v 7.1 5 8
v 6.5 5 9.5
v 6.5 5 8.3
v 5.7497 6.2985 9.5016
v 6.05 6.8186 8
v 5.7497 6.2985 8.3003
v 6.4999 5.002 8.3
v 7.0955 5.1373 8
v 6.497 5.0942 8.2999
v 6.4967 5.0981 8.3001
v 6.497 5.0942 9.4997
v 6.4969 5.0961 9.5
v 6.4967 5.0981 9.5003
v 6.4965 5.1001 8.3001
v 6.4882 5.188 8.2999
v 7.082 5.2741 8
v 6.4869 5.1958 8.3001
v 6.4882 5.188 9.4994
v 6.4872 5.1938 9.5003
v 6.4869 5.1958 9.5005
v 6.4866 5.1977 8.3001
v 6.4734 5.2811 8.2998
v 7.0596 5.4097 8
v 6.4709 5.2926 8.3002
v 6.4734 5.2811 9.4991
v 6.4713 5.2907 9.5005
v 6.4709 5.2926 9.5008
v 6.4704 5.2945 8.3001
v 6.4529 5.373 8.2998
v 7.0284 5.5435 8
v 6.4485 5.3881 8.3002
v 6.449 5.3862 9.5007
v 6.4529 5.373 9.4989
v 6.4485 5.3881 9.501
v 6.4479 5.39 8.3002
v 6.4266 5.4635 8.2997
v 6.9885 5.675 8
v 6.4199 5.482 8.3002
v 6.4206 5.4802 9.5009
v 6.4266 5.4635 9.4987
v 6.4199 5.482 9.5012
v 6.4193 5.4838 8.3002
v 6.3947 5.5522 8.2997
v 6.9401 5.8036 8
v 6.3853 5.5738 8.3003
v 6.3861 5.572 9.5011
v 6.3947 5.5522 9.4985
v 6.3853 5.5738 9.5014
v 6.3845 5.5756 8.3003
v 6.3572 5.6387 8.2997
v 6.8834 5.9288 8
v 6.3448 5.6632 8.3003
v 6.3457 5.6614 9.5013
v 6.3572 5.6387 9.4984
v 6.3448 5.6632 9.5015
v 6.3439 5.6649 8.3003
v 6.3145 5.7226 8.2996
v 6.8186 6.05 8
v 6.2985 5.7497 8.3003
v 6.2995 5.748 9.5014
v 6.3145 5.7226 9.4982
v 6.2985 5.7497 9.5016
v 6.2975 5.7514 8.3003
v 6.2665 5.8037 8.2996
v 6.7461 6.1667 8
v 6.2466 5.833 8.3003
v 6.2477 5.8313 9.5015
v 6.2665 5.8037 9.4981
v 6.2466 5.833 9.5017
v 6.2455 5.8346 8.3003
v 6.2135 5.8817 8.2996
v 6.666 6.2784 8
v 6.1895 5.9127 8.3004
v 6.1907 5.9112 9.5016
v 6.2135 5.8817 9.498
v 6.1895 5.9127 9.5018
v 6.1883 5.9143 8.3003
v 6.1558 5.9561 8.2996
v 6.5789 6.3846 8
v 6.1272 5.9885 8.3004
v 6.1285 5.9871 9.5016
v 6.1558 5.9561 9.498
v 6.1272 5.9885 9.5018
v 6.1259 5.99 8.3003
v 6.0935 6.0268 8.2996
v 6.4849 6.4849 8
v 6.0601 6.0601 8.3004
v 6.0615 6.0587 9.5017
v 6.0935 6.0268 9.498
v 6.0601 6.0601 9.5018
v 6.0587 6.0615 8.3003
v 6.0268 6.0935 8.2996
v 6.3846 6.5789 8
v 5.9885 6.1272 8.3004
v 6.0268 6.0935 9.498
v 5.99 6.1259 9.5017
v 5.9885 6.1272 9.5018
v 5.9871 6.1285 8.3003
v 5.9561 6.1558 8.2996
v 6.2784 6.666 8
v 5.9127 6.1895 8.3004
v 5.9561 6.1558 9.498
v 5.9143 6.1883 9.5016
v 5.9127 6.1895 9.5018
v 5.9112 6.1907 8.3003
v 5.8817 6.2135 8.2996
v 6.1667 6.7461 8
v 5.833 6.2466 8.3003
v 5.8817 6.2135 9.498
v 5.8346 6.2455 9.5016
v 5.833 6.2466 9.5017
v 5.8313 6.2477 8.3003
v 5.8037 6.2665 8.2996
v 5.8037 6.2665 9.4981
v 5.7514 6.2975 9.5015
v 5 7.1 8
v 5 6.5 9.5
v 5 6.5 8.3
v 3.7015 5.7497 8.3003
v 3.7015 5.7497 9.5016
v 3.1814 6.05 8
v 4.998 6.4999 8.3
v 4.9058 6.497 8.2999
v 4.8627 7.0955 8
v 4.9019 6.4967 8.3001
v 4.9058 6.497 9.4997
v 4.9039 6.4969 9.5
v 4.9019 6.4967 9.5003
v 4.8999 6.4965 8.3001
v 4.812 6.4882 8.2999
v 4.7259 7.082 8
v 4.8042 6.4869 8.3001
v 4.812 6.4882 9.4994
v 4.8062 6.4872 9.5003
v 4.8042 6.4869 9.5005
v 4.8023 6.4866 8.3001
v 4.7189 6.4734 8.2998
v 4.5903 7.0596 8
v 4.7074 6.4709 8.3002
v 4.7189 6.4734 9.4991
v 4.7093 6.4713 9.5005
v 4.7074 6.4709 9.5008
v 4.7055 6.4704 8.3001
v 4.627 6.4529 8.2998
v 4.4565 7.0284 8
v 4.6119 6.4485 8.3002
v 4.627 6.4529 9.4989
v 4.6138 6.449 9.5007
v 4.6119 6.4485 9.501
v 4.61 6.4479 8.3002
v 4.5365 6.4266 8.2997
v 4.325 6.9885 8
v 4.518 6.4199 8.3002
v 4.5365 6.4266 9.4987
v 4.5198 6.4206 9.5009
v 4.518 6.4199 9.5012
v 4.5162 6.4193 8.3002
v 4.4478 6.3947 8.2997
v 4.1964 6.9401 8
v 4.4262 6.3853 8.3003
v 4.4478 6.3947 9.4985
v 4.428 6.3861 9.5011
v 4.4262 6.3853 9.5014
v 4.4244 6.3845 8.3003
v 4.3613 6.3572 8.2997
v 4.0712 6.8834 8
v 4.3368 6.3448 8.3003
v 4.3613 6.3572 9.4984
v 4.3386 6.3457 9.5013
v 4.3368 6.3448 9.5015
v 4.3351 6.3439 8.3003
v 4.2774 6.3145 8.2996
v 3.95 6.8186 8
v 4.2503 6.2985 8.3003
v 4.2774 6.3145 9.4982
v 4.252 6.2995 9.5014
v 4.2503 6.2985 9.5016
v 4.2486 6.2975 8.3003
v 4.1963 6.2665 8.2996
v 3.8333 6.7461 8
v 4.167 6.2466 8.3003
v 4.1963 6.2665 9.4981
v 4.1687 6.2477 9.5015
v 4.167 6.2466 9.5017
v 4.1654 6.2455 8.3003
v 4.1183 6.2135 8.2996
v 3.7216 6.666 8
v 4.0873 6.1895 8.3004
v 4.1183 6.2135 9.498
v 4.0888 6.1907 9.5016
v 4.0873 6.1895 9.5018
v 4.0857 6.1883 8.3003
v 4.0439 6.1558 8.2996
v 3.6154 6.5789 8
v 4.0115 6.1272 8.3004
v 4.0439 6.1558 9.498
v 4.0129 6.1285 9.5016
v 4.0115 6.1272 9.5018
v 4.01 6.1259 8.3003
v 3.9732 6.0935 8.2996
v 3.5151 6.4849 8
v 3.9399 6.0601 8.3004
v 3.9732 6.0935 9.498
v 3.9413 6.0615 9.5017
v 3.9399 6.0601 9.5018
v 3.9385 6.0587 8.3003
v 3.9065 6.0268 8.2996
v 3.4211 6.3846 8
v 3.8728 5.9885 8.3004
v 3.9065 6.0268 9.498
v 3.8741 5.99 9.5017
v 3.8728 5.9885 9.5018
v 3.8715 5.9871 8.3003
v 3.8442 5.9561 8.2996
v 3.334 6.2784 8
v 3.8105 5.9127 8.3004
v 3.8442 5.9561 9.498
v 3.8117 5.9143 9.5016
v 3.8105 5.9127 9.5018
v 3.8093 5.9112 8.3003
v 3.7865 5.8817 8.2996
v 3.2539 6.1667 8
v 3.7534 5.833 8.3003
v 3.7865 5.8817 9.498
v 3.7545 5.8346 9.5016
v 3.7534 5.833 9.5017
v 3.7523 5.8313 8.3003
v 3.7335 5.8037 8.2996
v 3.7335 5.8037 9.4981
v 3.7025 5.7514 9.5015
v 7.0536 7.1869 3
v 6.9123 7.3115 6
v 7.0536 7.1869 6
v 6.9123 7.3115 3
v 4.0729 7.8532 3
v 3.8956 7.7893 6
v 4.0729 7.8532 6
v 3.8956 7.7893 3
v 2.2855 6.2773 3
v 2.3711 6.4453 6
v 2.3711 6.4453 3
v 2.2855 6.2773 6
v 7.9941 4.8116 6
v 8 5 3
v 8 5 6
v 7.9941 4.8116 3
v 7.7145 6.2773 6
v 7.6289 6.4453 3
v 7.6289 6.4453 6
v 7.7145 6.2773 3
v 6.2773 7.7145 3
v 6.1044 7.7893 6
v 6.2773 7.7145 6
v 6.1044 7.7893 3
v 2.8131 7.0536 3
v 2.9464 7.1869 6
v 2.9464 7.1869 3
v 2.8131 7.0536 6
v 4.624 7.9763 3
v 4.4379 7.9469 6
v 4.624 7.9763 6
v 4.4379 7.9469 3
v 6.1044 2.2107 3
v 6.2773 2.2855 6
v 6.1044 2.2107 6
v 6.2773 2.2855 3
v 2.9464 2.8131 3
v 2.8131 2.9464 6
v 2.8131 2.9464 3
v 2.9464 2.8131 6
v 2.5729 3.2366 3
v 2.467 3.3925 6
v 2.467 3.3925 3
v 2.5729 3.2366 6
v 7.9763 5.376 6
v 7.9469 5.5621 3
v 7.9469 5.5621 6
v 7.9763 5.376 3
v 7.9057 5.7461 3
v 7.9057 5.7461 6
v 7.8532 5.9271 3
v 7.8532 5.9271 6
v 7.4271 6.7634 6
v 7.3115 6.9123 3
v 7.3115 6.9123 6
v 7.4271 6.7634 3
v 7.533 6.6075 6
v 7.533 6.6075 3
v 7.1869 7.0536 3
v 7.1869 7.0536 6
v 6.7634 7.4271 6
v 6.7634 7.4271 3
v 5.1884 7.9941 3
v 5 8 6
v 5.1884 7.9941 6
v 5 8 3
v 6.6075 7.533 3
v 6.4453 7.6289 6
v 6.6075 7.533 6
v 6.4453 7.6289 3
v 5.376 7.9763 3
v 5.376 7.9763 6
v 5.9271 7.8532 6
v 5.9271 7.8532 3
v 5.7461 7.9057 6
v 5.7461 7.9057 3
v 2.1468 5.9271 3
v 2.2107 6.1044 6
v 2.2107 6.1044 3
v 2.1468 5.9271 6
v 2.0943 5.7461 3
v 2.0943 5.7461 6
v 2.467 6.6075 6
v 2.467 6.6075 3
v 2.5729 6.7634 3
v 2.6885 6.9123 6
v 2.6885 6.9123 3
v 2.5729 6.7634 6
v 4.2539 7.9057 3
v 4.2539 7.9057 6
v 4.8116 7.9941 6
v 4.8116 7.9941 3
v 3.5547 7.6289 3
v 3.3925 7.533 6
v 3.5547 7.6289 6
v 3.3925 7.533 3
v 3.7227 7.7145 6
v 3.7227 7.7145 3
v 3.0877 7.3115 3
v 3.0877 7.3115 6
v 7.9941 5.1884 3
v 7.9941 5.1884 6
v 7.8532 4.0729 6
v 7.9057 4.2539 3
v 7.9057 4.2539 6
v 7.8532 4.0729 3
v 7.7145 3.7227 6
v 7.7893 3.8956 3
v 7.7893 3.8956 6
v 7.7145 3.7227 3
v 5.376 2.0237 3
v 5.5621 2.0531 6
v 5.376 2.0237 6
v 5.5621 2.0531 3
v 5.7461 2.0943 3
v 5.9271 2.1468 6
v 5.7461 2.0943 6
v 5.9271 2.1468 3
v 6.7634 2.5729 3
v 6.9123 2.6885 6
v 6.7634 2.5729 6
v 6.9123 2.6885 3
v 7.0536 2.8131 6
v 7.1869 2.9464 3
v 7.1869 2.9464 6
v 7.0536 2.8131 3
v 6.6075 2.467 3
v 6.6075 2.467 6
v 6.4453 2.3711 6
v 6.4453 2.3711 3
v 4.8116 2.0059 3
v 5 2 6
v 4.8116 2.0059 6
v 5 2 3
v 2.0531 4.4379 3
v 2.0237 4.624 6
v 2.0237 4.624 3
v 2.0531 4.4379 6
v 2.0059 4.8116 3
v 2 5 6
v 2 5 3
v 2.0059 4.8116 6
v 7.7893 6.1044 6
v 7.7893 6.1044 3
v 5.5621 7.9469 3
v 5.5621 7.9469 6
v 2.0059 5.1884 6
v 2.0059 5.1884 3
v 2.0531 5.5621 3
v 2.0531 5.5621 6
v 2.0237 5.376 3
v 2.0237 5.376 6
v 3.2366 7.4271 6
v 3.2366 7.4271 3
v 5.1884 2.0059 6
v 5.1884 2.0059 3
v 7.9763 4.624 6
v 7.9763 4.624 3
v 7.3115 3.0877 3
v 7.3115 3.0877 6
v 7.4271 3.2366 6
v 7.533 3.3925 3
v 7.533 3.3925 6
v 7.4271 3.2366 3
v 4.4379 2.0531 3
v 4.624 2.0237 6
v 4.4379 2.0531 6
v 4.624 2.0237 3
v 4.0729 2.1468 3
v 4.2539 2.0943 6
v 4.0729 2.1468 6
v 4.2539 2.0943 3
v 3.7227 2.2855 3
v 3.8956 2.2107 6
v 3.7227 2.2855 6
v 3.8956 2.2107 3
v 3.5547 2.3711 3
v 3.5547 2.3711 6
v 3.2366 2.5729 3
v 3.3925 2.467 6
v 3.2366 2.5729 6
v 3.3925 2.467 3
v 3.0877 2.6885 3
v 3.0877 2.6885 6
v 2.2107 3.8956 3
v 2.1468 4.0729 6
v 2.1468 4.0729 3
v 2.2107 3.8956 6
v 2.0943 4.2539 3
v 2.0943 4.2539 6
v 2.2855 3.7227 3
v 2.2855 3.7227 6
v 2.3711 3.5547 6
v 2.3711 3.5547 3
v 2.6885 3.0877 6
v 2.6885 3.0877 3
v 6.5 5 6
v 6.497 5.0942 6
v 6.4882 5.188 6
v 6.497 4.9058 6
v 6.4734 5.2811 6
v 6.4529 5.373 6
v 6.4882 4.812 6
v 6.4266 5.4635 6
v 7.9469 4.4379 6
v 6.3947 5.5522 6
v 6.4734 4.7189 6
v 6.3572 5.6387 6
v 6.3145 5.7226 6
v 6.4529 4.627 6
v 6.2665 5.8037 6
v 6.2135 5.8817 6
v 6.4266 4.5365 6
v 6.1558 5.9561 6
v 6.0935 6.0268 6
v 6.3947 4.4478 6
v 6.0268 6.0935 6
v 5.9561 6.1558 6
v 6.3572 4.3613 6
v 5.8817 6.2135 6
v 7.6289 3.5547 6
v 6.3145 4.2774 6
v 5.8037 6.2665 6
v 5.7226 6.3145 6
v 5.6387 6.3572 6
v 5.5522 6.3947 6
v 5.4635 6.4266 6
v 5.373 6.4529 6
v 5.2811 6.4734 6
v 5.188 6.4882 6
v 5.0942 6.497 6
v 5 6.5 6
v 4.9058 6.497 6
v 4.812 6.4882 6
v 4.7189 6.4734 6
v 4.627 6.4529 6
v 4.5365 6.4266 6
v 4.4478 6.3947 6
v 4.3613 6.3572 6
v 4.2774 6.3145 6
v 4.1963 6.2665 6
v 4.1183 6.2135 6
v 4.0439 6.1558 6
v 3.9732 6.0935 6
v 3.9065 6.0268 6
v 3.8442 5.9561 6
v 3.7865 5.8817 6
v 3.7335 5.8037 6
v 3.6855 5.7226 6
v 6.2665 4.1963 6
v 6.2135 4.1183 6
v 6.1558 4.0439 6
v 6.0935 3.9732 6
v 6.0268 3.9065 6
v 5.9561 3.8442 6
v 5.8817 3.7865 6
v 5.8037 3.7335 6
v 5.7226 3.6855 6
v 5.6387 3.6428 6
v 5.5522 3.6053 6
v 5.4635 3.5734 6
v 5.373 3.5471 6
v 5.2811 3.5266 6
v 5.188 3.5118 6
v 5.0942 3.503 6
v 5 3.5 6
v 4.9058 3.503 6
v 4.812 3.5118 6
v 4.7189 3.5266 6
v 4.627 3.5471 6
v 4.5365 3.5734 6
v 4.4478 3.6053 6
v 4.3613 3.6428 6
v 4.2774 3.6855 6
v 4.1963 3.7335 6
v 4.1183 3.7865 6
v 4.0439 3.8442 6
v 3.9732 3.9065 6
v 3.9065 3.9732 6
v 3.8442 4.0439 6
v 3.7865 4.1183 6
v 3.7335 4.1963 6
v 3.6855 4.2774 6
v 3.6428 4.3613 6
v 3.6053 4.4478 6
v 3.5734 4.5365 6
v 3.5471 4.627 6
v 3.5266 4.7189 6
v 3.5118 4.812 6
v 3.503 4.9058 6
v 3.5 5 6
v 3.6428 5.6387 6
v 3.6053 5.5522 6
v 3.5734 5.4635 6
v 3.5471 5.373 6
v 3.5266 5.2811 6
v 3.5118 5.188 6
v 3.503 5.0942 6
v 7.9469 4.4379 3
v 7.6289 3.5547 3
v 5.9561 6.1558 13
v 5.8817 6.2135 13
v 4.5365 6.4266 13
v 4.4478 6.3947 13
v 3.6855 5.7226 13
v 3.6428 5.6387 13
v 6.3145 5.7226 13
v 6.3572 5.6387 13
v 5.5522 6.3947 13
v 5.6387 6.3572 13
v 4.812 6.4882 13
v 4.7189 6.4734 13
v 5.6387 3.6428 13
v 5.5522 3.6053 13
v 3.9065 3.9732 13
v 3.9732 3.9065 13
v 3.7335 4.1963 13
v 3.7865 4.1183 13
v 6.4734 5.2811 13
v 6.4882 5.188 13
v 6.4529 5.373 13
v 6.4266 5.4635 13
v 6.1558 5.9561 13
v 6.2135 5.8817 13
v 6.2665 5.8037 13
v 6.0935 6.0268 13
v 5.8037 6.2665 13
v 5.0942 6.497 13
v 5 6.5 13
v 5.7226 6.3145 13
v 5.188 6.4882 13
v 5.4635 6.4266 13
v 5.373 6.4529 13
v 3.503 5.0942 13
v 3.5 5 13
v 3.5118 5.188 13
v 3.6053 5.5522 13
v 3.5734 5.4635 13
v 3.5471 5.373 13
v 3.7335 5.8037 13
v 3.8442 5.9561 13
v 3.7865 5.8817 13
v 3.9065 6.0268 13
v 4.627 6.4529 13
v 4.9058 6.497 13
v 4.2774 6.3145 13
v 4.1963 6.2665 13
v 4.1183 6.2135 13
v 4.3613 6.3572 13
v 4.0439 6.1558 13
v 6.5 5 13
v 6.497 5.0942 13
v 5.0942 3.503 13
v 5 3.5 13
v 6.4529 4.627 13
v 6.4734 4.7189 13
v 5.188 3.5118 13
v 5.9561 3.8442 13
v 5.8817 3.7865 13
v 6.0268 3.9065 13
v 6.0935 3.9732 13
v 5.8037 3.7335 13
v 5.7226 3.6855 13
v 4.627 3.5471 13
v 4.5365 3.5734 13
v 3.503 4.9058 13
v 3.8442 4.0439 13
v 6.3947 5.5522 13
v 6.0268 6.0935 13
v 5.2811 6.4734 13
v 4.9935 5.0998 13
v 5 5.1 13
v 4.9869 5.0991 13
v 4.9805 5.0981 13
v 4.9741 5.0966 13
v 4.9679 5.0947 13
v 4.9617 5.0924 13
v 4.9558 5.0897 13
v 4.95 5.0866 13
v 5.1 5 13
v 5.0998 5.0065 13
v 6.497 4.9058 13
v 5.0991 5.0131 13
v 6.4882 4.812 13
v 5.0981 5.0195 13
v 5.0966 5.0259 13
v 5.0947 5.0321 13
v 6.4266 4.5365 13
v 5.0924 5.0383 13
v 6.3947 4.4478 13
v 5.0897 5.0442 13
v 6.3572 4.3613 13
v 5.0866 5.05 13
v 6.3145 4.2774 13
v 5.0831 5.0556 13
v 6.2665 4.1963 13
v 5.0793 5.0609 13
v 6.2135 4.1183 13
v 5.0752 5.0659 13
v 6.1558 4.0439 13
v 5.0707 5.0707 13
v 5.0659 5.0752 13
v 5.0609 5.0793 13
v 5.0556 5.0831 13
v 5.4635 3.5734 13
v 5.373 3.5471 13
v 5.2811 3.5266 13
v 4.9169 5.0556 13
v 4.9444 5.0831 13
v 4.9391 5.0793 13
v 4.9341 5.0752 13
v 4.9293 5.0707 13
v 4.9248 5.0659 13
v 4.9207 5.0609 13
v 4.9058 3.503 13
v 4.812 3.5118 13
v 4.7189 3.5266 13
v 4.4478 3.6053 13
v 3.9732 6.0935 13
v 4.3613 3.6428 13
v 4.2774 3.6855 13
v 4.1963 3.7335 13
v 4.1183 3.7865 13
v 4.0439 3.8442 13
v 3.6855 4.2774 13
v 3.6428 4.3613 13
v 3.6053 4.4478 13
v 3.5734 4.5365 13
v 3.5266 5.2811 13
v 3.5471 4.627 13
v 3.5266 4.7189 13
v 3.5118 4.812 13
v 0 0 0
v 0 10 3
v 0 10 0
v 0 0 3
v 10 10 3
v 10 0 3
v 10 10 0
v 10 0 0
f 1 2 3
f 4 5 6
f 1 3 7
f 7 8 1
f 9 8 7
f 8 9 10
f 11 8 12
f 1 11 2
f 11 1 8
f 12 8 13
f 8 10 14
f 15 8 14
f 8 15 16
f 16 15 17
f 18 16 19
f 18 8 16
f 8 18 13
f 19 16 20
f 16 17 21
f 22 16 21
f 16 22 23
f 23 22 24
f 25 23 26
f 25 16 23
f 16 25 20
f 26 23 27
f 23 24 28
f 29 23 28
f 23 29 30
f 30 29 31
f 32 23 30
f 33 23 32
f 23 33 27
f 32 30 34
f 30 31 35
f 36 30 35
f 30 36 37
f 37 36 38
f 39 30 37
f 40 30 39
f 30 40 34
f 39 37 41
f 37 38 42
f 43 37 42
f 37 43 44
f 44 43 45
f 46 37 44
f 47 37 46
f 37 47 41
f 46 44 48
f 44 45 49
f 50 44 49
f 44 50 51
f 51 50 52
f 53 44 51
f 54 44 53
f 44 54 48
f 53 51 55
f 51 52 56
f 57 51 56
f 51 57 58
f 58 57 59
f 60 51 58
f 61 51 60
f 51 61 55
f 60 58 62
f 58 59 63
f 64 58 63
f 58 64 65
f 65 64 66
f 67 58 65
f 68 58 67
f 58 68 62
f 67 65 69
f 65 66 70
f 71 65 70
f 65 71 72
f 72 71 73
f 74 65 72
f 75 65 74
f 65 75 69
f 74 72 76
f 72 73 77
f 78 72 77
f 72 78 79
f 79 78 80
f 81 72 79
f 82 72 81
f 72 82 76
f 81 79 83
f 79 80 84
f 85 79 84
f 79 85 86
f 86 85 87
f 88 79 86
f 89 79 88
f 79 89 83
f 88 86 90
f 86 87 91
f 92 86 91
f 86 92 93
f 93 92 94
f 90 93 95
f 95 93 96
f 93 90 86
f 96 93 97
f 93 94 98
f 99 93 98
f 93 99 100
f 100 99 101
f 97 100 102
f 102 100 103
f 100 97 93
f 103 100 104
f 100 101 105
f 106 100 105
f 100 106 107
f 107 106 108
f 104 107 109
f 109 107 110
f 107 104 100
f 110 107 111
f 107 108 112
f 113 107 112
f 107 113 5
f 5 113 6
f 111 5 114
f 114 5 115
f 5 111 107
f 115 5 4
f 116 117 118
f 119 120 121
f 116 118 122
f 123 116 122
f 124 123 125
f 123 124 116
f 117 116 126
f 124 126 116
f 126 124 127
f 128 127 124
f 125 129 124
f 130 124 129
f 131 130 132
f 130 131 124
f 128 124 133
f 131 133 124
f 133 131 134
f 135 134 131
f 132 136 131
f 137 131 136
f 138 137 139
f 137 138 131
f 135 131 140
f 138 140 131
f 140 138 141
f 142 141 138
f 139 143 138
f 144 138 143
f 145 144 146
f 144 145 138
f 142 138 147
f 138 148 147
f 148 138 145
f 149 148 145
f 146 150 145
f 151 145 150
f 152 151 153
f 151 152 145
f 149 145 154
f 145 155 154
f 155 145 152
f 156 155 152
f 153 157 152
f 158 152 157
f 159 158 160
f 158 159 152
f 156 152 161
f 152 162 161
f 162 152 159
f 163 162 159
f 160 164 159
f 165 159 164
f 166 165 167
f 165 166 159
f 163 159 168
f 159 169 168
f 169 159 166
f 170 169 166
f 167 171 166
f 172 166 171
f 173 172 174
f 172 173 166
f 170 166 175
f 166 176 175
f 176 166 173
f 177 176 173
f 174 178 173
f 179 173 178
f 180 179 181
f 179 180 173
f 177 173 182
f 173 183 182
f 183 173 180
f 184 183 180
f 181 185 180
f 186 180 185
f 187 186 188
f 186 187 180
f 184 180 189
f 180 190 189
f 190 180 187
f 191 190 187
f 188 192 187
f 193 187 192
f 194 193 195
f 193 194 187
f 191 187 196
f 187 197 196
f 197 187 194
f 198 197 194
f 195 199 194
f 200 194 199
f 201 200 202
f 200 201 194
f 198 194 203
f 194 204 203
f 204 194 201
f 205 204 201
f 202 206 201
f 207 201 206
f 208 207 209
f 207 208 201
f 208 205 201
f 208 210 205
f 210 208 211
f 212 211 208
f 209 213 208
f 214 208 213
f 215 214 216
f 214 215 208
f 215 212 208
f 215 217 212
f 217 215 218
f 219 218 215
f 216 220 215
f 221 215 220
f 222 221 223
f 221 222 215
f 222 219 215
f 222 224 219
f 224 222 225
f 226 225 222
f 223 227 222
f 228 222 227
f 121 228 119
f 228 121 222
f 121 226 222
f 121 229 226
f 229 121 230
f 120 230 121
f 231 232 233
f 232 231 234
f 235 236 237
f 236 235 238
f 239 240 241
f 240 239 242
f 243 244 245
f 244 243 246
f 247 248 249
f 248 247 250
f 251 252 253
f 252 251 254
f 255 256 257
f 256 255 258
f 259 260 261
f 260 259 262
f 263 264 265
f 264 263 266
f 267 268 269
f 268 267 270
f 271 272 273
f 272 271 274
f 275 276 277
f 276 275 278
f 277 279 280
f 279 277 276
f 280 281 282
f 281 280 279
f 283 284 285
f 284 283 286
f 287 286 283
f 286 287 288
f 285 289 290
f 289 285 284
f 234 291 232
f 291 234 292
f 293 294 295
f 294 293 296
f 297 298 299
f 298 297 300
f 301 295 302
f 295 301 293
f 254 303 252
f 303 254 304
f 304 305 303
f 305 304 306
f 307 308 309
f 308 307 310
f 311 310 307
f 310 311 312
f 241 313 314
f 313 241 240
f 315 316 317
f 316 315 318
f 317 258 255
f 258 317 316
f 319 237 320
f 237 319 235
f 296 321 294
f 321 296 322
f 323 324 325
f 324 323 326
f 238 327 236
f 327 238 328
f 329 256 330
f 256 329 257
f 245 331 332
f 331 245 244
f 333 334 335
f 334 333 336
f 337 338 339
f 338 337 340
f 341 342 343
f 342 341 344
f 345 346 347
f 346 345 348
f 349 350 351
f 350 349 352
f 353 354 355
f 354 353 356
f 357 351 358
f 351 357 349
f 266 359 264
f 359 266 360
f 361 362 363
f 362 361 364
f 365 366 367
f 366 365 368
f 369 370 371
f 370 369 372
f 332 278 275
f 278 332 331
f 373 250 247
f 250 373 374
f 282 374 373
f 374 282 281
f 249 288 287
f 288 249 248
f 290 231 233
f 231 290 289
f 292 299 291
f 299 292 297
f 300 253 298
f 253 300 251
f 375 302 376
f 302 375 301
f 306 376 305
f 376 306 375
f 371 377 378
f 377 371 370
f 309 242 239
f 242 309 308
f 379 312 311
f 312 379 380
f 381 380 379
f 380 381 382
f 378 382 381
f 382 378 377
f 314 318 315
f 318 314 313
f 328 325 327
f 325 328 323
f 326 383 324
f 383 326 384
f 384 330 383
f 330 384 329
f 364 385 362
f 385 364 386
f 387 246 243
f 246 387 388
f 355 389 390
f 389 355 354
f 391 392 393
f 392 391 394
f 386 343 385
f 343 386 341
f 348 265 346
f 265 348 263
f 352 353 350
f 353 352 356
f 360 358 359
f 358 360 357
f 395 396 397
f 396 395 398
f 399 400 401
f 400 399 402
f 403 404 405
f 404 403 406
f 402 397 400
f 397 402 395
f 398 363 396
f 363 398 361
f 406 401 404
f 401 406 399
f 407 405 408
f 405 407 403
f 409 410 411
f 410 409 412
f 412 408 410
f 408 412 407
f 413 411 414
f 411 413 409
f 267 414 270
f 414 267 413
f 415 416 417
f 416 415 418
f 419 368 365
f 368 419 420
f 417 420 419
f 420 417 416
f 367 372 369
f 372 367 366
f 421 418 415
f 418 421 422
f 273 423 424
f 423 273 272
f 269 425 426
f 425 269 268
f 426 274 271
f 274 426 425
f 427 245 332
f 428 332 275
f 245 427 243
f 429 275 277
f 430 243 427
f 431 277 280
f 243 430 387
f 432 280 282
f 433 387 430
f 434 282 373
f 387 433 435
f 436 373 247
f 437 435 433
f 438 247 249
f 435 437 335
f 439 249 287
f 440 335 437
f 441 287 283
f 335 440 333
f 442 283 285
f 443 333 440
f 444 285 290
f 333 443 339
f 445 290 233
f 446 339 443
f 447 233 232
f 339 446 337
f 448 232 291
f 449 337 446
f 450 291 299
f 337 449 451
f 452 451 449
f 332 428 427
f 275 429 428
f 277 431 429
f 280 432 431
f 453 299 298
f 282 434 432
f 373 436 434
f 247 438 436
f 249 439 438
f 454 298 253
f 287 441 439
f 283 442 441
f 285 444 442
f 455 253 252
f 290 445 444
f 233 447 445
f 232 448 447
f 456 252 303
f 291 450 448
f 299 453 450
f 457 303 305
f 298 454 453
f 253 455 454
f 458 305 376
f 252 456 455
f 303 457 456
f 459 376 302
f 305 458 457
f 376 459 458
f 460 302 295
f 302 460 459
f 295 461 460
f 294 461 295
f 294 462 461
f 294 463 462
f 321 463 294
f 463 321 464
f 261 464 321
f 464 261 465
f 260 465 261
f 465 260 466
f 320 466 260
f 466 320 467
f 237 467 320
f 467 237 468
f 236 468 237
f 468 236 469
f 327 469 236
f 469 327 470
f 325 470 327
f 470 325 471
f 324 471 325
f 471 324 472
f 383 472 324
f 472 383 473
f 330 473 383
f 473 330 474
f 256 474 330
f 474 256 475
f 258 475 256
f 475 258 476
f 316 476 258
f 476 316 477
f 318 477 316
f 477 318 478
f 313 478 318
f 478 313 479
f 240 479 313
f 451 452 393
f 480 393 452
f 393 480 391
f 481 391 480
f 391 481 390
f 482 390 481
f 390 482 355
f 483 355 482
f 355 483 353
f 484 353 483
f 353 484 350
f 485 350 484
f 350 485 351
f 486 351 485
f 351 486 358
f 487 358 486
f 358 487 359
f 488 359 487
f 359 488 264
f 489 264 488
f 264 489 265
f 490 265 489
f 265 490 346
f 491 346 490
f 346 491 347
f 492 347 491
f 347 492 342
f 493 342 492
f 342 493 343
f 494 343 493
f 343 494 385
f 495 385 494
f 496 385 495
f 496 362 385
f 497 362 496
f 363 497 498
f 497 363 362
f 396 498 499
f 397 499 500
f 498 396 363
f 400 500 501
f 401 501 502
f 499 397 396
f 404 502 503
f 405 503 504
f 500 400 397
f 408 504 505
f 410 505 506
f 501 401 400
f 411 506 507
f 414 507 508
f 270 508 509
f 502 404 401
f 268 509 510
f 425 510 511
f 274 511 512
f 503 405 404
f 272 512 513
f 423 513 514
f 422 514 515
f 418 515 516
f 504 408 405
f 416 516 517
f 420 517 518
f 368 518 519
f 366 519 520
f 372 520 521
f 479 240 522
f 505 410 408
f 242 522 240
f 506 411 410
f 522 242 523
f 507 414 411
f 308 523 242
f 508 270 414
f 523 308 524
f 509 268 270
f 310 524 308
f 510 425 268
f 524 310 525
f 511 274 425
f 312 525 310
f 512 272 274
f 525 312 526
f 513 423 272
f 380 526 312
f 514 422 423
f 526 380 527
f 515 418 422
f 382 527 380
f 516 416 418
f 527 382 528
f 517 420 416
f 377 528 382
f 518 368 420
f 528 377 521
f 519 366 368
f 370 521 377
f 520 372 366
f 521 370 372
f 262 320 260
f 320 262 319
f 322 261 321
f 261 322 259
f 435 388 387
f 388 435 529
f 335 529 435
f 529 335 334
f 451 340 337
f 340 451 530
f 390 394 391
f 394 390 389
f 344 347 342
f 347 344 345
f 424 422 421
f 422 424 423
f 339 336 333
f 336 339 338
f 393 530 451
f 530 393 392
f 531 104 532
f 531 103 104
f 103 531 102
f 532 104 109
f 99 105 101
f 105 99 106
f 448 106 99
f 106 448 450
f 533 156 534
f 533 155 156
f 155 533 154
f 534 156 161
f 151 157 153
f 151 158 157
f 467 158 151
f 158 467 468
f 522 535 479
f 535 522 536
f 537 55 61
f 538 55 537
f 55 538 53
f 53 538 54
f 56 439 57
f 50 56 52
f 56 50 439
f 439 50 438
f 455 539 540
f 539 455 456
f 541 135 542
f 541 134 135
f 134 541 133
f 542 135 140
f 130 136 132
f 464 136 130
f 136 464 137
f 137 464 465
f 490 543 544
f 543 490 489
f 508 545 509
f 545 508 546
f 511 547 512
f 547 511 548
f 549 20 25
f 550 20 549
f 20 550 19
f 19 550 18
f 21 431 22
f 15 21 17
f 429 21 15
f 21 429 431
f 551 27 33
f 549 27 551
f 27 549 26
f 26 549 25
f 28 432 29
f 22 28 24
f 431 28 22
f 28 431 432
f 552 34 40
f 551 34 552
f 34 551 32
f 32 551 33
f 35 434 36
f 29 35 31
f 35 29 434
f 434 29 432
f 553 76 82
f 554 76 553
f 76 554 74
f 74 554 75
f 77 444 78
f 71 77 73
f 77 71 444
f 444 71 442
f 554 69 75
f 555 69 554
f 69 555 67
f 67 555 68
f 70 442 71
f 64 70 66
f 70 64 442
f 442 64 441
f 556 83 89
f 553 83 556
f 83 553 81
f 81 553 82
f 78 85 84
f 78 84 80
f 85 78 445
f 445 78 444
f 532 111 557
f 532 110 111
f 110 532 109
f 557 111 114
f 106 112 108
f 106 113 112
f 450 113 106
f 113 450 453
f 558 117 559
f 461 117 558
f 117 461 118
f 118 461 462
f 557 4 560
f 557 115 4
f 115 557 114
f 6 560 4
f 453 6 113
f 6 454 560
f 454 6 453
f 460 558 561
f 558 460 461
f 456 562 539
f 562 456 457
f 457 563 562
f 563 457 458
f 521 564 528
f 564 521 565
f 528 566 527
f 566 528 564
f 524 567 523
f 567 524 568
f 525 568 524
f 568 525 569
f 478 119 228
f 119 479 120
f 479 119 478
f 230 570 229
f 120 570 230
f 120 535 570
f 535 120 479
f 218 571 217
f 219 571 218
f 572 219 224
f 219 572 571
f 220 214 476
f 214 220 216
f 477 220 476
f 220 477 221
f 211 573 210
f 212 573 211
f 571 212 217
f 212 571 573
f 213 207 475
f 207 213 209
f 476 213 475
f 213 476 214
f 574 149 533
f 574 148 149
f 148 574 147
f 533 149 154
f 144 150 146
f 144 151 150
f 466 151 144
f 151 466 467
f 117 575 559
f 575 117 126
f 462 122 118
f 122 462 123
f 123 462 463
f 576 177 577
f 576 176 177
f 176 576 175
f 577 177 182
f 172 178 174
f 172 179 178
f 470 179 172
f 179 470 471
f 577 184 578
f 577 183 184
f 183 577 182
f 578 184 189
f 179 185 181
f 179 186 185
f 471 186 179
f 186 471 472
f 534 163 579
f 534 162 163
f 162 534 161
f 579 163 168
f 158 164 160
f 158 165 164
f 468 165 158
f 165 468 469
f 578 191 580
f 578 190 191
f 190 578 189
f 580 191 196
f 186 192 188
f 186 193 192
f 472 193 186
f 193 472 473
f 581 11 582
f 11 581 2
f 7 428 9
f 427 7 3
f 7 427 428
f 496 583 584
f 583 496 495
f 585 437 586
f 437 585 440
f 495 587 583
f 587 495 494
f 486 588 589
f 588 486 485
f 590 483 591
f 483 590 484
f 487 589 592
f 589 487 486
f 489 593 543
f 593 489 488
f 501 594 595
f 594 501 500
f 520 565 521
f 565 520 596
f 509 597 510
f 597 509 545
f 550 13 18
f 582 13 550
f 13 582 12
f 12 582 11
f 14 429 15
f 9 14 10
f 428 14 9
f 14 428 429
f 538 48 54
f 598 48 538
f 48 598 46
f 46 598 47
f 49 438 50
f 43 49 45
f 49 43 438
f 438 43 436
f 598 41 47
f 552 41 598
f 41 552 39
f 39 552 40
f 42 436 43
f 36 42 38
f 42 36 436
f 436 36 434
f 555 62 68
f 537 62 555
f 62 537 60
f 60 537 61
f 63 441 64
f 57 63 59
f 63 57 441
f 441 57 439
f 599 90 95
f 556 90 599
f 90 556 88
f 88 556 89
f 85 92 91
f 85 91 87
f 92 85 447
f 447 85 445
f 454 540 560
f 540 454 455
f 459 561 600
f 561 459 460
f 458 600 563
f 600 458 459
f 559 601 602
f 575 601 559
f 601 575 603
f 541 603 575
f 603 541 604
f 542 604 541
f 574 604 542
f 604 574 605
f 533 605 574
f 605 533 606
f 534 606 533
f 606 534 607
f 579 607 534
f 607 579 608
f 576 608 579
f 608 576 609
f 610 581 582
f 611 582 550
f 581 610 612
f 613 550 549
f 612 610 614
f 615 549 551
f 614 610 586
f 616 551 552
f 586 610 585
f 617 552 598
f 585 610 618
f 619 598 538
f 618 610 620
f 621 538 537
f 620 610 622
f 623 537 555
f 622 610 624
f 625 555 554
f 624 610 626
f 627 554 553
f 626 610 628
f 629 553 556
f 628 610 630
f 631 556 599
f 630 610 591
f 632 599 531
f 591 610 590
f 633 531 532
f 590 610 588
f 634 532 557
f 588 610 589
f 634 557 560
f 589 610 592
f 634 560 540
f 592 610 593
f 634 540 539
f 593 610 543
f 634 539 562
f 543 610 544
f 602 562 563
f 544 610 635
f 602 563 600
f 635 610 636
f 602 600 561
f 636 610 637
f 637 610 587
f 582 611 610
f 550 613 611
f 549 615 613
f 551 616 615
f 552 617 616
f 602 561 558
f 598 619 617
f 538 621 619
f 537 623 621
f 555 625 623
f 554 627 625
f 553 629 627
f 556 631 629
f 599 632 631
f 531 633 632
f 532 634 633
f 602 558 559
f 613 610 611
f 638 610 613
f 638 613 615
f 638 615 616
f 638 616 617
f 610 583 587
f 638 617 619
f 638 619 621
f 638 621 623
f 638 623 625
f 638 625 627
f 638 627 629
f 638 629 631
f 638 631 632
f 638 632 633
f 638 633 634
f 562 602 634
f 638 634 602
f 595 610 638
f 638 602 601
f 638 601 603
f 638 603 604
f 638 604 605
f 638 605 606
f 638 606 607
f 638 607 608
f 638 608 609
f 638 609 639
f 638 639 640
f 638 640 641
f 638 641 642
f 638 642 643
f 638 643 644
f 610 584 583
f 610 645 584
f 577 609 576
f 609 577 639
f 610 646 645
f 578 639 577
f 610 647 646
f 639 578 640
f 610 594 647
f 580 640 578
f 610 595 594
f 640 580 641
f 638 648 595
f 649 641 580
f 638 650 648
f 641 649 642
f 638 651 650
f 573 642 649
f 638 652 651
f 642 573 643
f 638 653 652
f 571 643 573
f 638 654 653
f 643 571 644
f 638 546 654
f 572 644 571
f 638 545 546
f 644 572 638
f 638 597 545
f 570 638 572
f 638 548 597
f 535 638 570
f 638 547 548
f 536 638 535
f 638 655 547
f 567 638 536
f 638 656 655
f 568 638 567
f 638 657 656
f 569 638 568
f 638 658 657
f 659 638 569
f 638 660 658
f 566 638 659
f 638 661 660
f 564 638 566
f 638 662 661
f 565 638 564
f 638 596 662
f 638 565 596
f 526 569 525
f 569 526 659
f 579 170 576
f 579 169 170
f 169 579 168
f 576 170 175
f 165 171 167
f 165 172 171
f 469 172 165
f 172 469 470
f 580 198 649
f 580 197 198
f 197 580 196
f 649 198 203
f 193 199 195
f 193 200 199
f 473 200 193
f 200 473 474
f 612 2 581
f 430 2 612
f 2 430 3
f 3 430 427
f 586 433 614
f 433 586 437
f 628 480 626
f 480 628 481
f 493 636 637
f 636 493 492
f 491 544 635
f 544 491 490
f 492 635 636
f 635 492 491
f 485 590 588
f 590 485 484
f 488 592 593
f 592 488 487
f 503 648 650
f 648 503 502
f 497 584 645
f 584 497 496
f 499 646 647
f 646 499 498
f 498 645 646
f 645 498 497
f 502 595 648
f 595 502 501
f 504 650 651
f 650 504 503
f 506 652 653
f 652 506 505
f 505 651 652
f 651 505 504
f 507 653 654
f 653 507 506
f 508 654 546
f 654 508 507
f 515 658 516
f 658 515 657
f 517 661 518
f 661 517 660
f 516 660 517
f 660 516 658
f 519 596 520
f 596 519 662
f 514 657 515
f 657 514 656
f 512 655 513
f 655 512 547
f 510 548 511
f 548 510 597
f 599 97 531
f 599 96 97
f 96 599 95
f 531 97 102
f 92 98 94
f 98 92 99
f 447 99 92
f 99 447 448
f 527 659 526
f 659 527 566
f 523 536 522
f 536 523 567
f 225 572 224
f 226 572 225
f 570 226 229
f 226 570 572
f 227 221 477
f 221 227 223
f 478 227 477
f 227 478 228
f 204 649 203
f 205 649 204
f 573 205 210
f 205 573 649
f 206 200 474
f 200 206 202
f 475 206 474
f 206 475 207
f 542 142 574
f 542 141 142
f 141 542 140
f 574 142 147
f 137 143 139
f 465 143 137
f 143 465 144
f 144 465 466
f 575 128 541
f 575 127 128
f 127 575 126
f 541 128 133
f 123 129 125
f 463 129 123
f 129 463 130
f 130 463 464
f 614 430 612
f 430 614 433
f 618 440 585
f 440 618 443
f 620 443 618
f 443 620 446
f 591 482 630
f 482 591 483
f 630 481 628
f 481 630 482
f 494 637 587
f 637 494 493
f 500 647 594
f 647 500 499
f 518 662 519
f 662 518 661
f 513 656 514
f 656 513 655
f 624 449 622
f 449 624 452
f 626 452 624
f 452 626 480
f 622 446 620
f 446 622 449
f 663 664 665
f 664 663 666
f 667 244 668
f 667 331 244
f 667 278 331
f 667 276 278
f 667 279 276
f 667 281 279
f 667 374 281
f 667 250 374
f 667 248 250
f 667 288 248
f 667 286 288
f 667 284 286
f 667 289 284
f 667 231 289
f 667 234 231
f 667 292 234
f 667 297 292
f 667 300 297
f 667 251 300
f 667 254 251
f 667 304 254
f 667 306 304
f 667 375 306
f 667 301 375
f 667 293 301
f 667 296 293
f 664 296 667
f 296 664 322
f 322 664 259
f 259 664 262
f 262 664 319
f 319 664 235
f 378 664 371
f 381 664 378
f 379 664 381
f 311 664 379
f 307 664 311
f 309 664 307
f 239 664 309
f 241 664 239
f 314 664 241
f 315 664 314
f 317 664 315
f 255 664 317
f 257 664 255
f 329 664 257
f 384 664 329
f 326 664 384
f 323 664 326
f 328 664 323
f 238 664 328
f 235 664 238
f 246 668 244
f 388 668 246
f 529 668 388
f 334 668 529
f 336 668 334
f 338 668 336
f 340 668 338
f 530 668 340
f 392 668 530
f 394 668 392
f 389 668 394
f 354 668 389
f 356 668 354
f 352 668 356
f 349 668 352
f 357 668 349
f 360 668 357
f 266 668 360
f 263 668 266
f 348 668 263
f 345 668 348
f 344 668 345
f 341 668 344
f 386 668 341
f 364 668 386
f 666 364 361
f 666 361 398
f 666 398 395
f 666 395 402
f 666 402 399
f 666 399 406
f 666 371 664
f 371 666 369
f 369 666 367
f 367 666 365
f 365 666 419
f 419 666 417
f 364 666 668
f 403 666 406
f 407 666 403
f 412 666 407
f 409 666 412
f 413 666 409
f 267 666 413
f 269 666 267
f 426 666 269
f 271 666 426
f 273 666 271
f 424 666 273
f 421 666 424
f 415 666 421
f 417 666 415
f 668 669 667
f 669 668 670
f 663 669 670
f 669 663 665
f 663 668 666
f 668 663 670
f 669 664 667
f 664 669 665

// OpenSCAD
// file: Generics.scad
/**
* A selection of generic shapes
**/
BOTTOM = 0;
TOP = 1;
LEFT = 2;
RIGHT = 3;
FRONT = 4;
BACK = 5;
module rounded_square(length, width, radius) {
    
    translate([radius, radius, 0])
    hull() {
        circle(r=radius);
        
        translate([length - 2 * radius,0,0])
        circle(r=radius);
        
        translate([length - 2 * radius, width - 2 * radius,0])
        circle(r=radius);
        
        translate([0, width - 2 * radius,0])
        circle(r=radius);
    }
}

/**
* Operator to apply to lay out 4 of something on a grid
* Generates 4 spaced on an XY grid
**/
module op_4_grid(length, width, offset_left, offset_right, offset_top, offset_bottom) {
    translate([offset_left, offset_bottom, 0])
    children();
    
    translate([length - offset_right, offset_bottom, 0]) 
    children();
    
    translate([length - offset_right, width - offset_top, 0]) 
    children();
    
    translate([offset_left, width - offset_top, 0]) 
    children();
}

module countersink(screw_hole_dia, thickness, LAYER_HEIGHT = 0.4) {
    print_height = thickness + LAYER_HEIGHT;
    translate([0,0,-LAYER_HEIGHT/2])
    rotate_extrude() 
    polygon(points=[[0,0],[screw_hole_dia/2,0],[screw_hole_dia/2,thickness/2],[screw_hole_dia,print_height],[0,print_height]]);
}
// file: Standoffs.scad
/**
* Basic shapes for electronics
**/
use <Generics.scad>

$fn=100;




module part_pcb(length, width, thickness) {
    cube([length, width, thickness]);
}

/**
* Holes are at the same distance from the edges along the Y-axis
* but can be offset by different amounts on the X-axis
**/
module part_pcb_with_uneven_holes(length, width, thickness, hole_dia, hole_offset_left, hole_offset_right, hole_offset_y) {
    
    difference() {
        part_pcb(length, width, thickness);
        
        translate([0,0,-0.1]) {
            op_4_grid(length, width, hole_offset_left, hole_offset_right, hole_offset_y, hole_offset_y)
            cylinder(h = thickness+0.2, d = hole_dia);  
        }
    }
}

module part_pcb_with_holes(length, width, thickness, hole_dia, hole_offset_x, hole_offset_y) {
    part_pcb_with_uneven_holes(length, width, thickness, hole_dia, hole_offset_x,     hole_offset_x, hole_offset_y);
}

/**
* Create simple standoffs to support PCBs
**/

/**
* Creates a two-level standoff with a hole in the middle
* which should take a screw.
* If this results in a hole which is too small to be usable
* consider using
* - flat_screw_standoff
* - snap_standoff
**/
module part_centred_screw_standoff(outer_height, outer_dia, inner_height, inner_dia, hole_dia, LAYER_HEIGHT) {
    
    // move down by 2 layers for best adhesion
    translate([0,0,-2*LAYER_HEIGHT])
    difference() {
        union() {
            cylinder(h=outer_height+ 2*LAYER_HEIGHT, d=outer_dia);
            translate([0,0,outer_height])
            cylinder(h=inner_height + 2 * LAYER_HEIGHT, d=inner_dia);
        }
        translate([0,0,2 * LAYER_HEIGHT])
        cylinder(h=(outer_height+inner_height + LAYER_HEIGHT), d=hole_dia);
    }
}

module part_flat_screw_standoff(height, dia, hole_dia, LAYER_HEIGHT=0.4) {
    
    // move down by 2 layers for best adhesion
    translate([0,0,-2*LAYER_HEIGHT])
    difference() {
        cylinder(h=height + 2 * LAYER_HEIGHT, d=dia);
        translate([0,0, 2 * LAYER_HEIGHT])
        cylinder(h=height + LAYER_HEIGHT, d=hole_dia);
    }
}
/**
* Makes a standoff which snaps into the hole
* the height of the part above the hole defaults to 5mm
**/
module part_snap_standoff(height, dia, inner_height, hole_dia, snap_height = 5, LAYER_HEIGHT = 0.4) {
    
    // move down by 2 layers for best adhesion
    print_height = height + 2 * LAYER_HEIGHT;
    translate([0,0,-2*LAYER_HEIGHT]) {
        cylinder(h=print_height, d=dia);
        cylinder(h=(print_height + inner_height + snap_height),d=hole_dia);
        
        translate([0,0,print_height+inner_height]){
            
            s = (snap_height < 3) ? 0 : 1;
            
            rotate_extrude(angle=60)
            polygon([[0.1,s],[hole_dia/2 + 2 * LAYER_HEIGHT, 0],[0.1,snap_height]]);
                
                
            rotate([0,0,90])
            rotate_extrude(angle=60)
            polygon([[0.1,s],[hole_dia/2 + 2 * LAYER_HEIGHT, 0],[0.1,snap_height]]);
                
        }
    }
}

part_centred_screw_standoff(3,6,2,4,2, 0.3);

translate([0,20,0])
part_flat_screw_standoff(6,4,2,0.3);

translate([0,7,0])
part_snap_standoff(3,6,2,4,5, 0.3);

translate([10,0,0])
part_pcb_with_holes(50,50,2,3,3,3);

translate([70,0,0])
part_pcb_with_uneven_holes(50,50,2,3,3,15,3);
// main file
LAYER_HEIGHT = 0.4;

use <./Standoffs.scad>

// test the standoffs


cube([10,10,3]);
translate([0,0,3]) {
    
    //translate([5,5,0])
   // part_centred_screw_standoff(3,6,2,4,2, 0.3);

    //translate([5,30,0])
    //part_flat_screw_standoff(6,4,2,0.3);

    translate([5,5,0])
    part_snap_standoff(3,6,2,3,5, 0.3);
}
